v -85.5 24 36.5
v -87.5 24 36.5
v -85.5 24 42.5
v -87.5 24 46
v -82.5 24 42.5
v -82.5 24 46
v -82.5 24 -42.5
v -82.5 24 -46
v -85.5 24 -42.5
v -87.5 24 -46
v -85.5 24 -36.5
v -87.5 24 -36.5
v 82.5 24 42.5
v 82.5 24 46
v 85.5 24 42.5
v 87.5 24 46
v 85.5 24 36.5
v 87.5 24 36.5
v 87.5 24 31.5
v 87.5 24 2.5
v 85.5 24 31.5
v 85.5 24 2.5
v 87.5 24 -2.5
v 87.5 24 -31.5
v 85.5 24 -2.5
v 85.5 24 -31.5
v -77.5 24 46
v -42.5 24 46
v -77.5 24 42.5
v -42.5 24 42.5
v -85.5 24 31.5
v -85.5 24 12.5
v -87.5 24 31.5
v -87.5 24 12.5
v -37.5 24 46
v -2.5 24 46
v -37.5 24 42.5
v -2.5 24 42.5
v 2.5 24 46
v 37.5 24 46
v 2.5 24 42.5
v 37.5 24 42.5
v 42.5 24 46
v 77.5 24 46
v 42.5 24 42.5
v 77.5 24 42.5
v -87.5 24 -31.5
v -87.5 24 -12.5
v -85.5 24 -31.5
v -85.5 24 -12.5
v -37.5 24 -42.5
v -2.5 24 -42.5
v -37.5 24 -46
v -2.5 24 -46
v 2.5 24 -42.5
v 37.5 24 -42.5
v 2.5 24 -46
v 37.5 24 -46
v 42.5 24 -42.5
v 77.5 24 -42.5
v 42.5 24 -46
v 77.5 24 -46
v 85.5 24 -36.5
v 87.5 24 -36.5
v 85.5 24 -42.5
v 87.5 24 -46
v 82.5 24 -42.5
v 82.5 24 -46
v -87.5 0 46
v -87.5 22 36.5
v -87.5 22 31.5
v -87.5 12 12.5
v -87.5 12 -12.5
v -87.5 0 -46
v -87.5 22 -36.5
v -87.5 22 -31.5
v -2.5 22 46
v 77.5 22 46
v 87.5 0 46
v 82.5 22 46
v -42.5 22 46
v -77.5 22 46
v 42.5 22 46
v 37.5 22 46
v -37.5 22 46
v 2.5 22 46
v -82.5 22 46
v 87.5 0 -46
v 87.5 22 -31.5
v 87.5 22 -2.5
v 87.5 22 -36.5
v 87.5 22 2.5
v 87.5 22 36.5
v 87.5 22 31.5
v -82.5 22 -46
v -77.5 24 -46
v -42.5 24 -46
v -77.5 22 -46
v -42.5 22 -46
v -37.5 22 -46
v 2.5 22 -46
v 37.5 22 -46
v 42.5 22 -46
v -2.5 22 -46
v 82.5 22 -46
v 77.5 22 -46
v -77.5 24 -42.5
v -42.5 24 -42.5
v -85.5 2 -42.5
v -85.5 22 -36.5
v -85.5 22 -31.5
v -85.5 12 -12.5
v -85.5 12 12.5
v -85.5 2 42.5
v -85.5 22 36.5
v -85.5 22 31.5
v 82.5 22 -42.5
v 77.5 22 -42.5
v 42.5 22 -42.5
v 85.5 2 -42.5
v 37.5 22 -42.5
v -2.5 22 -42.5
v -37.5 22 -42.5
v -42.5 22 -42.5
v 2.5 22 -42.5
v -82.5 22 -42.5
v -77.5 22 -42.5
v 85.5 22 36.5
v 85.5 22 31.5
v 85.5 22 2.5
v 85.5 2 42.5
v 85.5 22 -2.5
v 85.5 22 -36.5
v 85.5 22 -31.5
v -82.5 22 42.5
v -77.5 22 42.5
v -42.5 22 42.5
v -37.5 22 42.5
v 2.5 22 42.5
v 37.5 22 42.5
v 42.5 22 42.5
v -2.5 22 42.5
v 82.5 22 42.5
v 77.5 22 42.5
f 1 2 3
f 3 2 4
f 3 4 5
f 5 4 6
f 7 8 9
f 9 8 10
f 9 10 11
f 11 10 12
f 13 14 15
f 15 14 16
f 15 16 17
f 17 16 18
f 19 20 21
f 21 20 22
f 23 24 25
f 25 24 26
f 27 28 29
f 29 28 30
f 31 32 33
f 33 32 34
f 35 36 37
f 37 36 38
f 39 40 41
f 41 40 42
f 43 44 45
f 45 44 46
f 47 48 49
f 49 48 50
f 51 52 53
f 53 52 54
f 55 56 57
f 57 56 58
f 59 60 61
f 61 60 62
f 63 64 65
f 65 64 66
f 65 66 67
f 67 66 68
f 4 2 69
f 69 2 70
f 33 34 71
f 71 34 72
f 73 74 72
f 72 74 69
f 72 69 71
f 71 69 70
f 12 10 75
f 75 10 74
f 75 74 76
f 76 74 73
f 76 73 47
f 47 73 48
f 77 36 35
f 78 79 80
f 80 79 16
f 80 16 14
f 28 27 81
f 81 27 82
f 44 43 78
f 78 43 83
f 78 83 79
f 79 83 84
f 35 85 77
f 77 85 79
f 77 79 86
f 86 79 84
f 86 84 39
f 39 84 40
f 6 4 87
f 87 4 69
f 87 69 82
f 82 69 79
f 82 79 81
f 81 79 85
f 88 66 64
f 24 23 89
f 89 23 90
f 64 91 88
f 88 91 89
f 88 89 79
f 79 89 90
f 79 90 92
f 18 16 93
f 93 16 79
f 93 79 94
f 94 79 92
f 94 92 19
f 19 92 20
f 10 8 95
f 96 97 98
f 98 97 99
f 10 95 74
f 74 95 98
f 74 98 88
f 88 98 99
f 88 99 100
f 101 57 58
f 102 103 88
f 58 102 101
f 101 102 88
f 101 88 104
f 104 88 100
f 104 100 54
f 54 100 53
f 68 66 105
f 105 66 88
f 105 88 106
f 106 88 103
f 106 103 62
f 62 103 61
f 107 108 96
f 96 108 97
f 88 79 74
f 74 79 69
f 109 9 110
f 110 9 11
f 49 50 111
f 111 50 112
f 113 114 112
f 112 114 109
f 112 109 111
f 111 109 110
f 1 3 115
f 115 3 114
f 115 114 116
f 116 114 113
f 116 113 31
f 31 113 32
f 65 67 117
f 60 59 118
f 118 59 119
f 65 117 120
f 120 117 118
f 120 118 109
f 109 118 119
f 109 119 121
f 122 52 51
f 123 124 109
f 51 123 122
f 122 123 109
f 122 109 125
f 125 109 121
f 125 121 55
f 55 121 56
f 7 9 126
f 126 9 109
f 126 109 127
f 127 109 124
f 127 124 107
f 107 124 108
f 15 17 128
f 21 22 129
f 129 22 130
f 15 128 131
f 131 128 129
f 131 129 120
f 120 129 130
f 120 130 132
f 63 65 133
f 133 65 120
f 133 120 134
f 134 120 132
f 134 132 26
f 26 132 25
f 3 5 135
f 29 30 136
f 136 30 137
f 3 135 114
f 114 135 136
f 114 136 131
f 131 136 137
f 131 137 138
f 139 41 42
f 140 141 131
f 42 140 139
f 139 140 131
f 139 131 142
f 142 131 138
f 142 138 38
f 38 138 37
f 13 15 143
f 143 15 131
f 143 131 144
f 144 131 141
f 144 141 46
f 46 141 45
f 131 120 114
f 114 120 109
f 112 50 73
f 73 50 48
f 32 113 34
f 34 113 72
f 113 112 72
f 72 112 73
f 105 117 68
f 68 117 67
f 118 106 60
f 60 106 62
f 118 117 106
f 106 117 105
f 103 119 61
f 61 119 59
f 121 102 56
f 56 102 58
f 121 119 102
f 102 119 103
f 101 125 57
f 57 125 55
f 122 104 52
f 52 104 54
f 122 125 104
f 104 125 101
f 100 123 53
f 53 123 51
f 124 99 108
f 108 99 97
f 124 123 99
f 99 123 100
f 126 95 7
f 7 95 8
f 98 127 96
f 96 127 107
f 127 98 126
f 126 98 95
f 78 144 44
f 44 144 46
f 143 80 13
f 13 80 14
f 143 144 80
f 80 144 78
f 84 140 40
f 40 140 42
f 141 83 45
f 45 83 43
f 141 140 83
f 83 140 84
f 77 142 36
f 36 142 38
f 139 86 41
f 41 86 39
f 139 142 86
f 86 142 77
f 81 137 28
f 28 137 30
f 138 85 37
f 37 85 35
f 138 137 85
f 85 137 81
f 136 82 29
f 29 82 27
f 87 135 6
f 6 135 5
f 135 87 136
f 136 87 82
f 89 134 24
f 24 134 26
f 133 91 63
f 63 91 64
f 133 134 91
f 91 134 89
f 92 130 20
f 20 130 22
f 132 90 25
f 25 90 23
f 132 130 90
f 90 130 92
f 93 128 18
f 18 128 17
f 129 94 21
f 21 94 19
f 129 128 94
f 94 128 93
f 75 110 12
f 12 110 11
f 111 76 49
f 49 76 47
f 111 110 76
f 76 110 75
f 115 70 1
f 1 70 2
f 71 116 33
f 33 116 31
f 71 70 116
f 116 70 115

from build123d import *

# Parameters (mm, degrees)
SKETCH1_W           = 175
SKETCH1_H           = 92
BOSS_EXTRUDE1_DEPTH = 24
SKETCH2_W           = 171
SKETCH2_H           = 85
CUT_EXTRUDE1_DEPTH  = 22
SKETCH3_W           = 25
SKETCH3_H           = 12
CUT_EXTRUDE2_DEPTH  = 2
SKETCH4_W           = 5
SKETCH4_H           = 3.5
CUT_EXTRUDE4_DEPTH  = 2
SKETCH5_W           = 5
SKETCH5_H           = 3.5
CUT_EXTRUDE7_DEPTH  = 2
SKETCH7_W           = 2
SKETCH7_H           = 5
CUT_EXTRUDE8_DEPTH  = 2
SKETCH10_W          = 2
SKETCH10_H          = 5
CUT_EXTRUDE9_DEPTH  = 2
SKETCH11_W          = 2
SKETCH11_H          = 5
CUT_EXTRUDE10_DEPTH = 2


with BuildPart() as part:
    # Sketch1 → Boss-Extrude1 (new body)
    with BuildSketch(Plane(origin=(0, 0, 0), x_dir=(1, 0, 0), z_dir=(0, 1, 0))):
        Rectangle(SKETCH1_W, SKETCH1_H)
    extrude(amount=BOSS_EXTRUDE1_DEPTH)

    # Sketch2 → Cut-Extrude1 (cut)
    with BuildSketch(Plane(origin=(0, 24, 0), x_dir=(1, 0, 0), z_dir=(0, 1, 0))):
        Rectangle(SKETCH2_W, SKETCH2_H)
    extrude(amount=-CUT_EXTRUDE1_DEPTH, mode=Mode.SUBTRACT)

    # Sketch3 → Cut-Extrude2 (cut)
    with BuildSketch(Plane.ZY.offset(87.5)):
        with Locations((0, 18)):
            Rectangle(SKETCH3_W, SKETCH3_H)
    extrude(amount=-CUT_EXTRUDE2_DEPTH, mode=Mode.SUBTRACT)

    # Sketch4 → Cut-Extrude4 (cut)
    with BuildSketch(Plane(origin=(0, 24, 0), x_dir=(1, 0, 0), z_dir=(0, 1, 0))):
        with Locations((-80, 44.25)):
            Rectangle(SKETCH4_W, SKETCH4_H)
        with Locations((-40, 44.25)):
            Rectangle(SKETCH4_W, SKETCH4_H)
        with Locations((0, 44.25)):
            Rectangle(SKETCH4_W, SKETCH4_H)
        with Locations((40, 44.25)):
            Rectangle(SKETCH4_W, SKETCH4_H)
        with Locations((80, 44.25)):
            Rectangle(SKETCH4_W, SKETCH4_H)
    extrude(amount=-CUT_EXTRUDE4_DEPTH, mode=Mode.SUBTRACT)

    # Sketch5 → Cut-Extrude7 (cut)
    with BuildSketch(Plane(origin=(0, 24, 0), x_dir=(1, 0, 0), z_dir=(0, 1, 0))):
        with Locations((-80, -44.25)):
            Rectangle(SKETCH5_W, SKETCH5_H)
        with Locations((-40, -44.25)):
            Rectangle(SKETCH5_W, SKETCH5_H)
        with Locations((0, -44.25)):
            Rectangle(SKETCH5_W, SKETCH5_H)
        with Locations((40, -44.25)):
            Rectangle(SKETCH5_W, SKETCH5_H)
        with Locations((80, -44.25)):
            Rectangle(SKETCH5_W, SKETCH5_H)
    extrude(amount=-CUT_EXTRUDE7_DEPTH, mode=Mode.SUBTRACT)

    # Sketch7 → Cut-Extrude8 (cut)
    with BuildSketch(Plane(origin=(0, 24, 0), x_dir=(1, 0, 0), z_dir=(0, 1, 0))):
        with Locations((86.5, 0)):
            Rectangle(SKETCH7_W, SKETCH7_H)
        with Locations((86.5, -34)):
            Rectangle(SKETCH7_W, SKETCH7_H)
        with Locations((86.5, 34)):
            Rectangle(SKETCH7_W, SKETCH7_H)
    extrude(amount=-CUT_EXTRUDE8_DEPTH, mode=Mode.SUBTRACT)

    # Sketch10 → Cut-Extrude9 (cut)
    with BuildSketch(Plane(origin=(0, 24, 0), x_dir=(1, 0, 0), z_dir=(0, 1, 0))):
        with Locations((-86.5, 34)):
            Rectangle(SKETCH10_W, SKETCH10_H)
    extrude(amount=-CUT_EXTRUDE9_DEPTH, mode=Mode.SUBTRACT)

    # Sketch11 → Cut-Extrude10 (cut)
    with BuildSketch(Plane(origin=(0, 24, 0), x_dir=(1, 0, 0), z_dir=(0, 1, 0))):
        with Locations((-86.5, -34)):
            Rectangle(SKETCH11_W, SKETCH11_H)
    extrude(amount=-CUT_EXTRUDE10_DEPTH, mode=Mode.SUBTRACT)


solid = part.part
